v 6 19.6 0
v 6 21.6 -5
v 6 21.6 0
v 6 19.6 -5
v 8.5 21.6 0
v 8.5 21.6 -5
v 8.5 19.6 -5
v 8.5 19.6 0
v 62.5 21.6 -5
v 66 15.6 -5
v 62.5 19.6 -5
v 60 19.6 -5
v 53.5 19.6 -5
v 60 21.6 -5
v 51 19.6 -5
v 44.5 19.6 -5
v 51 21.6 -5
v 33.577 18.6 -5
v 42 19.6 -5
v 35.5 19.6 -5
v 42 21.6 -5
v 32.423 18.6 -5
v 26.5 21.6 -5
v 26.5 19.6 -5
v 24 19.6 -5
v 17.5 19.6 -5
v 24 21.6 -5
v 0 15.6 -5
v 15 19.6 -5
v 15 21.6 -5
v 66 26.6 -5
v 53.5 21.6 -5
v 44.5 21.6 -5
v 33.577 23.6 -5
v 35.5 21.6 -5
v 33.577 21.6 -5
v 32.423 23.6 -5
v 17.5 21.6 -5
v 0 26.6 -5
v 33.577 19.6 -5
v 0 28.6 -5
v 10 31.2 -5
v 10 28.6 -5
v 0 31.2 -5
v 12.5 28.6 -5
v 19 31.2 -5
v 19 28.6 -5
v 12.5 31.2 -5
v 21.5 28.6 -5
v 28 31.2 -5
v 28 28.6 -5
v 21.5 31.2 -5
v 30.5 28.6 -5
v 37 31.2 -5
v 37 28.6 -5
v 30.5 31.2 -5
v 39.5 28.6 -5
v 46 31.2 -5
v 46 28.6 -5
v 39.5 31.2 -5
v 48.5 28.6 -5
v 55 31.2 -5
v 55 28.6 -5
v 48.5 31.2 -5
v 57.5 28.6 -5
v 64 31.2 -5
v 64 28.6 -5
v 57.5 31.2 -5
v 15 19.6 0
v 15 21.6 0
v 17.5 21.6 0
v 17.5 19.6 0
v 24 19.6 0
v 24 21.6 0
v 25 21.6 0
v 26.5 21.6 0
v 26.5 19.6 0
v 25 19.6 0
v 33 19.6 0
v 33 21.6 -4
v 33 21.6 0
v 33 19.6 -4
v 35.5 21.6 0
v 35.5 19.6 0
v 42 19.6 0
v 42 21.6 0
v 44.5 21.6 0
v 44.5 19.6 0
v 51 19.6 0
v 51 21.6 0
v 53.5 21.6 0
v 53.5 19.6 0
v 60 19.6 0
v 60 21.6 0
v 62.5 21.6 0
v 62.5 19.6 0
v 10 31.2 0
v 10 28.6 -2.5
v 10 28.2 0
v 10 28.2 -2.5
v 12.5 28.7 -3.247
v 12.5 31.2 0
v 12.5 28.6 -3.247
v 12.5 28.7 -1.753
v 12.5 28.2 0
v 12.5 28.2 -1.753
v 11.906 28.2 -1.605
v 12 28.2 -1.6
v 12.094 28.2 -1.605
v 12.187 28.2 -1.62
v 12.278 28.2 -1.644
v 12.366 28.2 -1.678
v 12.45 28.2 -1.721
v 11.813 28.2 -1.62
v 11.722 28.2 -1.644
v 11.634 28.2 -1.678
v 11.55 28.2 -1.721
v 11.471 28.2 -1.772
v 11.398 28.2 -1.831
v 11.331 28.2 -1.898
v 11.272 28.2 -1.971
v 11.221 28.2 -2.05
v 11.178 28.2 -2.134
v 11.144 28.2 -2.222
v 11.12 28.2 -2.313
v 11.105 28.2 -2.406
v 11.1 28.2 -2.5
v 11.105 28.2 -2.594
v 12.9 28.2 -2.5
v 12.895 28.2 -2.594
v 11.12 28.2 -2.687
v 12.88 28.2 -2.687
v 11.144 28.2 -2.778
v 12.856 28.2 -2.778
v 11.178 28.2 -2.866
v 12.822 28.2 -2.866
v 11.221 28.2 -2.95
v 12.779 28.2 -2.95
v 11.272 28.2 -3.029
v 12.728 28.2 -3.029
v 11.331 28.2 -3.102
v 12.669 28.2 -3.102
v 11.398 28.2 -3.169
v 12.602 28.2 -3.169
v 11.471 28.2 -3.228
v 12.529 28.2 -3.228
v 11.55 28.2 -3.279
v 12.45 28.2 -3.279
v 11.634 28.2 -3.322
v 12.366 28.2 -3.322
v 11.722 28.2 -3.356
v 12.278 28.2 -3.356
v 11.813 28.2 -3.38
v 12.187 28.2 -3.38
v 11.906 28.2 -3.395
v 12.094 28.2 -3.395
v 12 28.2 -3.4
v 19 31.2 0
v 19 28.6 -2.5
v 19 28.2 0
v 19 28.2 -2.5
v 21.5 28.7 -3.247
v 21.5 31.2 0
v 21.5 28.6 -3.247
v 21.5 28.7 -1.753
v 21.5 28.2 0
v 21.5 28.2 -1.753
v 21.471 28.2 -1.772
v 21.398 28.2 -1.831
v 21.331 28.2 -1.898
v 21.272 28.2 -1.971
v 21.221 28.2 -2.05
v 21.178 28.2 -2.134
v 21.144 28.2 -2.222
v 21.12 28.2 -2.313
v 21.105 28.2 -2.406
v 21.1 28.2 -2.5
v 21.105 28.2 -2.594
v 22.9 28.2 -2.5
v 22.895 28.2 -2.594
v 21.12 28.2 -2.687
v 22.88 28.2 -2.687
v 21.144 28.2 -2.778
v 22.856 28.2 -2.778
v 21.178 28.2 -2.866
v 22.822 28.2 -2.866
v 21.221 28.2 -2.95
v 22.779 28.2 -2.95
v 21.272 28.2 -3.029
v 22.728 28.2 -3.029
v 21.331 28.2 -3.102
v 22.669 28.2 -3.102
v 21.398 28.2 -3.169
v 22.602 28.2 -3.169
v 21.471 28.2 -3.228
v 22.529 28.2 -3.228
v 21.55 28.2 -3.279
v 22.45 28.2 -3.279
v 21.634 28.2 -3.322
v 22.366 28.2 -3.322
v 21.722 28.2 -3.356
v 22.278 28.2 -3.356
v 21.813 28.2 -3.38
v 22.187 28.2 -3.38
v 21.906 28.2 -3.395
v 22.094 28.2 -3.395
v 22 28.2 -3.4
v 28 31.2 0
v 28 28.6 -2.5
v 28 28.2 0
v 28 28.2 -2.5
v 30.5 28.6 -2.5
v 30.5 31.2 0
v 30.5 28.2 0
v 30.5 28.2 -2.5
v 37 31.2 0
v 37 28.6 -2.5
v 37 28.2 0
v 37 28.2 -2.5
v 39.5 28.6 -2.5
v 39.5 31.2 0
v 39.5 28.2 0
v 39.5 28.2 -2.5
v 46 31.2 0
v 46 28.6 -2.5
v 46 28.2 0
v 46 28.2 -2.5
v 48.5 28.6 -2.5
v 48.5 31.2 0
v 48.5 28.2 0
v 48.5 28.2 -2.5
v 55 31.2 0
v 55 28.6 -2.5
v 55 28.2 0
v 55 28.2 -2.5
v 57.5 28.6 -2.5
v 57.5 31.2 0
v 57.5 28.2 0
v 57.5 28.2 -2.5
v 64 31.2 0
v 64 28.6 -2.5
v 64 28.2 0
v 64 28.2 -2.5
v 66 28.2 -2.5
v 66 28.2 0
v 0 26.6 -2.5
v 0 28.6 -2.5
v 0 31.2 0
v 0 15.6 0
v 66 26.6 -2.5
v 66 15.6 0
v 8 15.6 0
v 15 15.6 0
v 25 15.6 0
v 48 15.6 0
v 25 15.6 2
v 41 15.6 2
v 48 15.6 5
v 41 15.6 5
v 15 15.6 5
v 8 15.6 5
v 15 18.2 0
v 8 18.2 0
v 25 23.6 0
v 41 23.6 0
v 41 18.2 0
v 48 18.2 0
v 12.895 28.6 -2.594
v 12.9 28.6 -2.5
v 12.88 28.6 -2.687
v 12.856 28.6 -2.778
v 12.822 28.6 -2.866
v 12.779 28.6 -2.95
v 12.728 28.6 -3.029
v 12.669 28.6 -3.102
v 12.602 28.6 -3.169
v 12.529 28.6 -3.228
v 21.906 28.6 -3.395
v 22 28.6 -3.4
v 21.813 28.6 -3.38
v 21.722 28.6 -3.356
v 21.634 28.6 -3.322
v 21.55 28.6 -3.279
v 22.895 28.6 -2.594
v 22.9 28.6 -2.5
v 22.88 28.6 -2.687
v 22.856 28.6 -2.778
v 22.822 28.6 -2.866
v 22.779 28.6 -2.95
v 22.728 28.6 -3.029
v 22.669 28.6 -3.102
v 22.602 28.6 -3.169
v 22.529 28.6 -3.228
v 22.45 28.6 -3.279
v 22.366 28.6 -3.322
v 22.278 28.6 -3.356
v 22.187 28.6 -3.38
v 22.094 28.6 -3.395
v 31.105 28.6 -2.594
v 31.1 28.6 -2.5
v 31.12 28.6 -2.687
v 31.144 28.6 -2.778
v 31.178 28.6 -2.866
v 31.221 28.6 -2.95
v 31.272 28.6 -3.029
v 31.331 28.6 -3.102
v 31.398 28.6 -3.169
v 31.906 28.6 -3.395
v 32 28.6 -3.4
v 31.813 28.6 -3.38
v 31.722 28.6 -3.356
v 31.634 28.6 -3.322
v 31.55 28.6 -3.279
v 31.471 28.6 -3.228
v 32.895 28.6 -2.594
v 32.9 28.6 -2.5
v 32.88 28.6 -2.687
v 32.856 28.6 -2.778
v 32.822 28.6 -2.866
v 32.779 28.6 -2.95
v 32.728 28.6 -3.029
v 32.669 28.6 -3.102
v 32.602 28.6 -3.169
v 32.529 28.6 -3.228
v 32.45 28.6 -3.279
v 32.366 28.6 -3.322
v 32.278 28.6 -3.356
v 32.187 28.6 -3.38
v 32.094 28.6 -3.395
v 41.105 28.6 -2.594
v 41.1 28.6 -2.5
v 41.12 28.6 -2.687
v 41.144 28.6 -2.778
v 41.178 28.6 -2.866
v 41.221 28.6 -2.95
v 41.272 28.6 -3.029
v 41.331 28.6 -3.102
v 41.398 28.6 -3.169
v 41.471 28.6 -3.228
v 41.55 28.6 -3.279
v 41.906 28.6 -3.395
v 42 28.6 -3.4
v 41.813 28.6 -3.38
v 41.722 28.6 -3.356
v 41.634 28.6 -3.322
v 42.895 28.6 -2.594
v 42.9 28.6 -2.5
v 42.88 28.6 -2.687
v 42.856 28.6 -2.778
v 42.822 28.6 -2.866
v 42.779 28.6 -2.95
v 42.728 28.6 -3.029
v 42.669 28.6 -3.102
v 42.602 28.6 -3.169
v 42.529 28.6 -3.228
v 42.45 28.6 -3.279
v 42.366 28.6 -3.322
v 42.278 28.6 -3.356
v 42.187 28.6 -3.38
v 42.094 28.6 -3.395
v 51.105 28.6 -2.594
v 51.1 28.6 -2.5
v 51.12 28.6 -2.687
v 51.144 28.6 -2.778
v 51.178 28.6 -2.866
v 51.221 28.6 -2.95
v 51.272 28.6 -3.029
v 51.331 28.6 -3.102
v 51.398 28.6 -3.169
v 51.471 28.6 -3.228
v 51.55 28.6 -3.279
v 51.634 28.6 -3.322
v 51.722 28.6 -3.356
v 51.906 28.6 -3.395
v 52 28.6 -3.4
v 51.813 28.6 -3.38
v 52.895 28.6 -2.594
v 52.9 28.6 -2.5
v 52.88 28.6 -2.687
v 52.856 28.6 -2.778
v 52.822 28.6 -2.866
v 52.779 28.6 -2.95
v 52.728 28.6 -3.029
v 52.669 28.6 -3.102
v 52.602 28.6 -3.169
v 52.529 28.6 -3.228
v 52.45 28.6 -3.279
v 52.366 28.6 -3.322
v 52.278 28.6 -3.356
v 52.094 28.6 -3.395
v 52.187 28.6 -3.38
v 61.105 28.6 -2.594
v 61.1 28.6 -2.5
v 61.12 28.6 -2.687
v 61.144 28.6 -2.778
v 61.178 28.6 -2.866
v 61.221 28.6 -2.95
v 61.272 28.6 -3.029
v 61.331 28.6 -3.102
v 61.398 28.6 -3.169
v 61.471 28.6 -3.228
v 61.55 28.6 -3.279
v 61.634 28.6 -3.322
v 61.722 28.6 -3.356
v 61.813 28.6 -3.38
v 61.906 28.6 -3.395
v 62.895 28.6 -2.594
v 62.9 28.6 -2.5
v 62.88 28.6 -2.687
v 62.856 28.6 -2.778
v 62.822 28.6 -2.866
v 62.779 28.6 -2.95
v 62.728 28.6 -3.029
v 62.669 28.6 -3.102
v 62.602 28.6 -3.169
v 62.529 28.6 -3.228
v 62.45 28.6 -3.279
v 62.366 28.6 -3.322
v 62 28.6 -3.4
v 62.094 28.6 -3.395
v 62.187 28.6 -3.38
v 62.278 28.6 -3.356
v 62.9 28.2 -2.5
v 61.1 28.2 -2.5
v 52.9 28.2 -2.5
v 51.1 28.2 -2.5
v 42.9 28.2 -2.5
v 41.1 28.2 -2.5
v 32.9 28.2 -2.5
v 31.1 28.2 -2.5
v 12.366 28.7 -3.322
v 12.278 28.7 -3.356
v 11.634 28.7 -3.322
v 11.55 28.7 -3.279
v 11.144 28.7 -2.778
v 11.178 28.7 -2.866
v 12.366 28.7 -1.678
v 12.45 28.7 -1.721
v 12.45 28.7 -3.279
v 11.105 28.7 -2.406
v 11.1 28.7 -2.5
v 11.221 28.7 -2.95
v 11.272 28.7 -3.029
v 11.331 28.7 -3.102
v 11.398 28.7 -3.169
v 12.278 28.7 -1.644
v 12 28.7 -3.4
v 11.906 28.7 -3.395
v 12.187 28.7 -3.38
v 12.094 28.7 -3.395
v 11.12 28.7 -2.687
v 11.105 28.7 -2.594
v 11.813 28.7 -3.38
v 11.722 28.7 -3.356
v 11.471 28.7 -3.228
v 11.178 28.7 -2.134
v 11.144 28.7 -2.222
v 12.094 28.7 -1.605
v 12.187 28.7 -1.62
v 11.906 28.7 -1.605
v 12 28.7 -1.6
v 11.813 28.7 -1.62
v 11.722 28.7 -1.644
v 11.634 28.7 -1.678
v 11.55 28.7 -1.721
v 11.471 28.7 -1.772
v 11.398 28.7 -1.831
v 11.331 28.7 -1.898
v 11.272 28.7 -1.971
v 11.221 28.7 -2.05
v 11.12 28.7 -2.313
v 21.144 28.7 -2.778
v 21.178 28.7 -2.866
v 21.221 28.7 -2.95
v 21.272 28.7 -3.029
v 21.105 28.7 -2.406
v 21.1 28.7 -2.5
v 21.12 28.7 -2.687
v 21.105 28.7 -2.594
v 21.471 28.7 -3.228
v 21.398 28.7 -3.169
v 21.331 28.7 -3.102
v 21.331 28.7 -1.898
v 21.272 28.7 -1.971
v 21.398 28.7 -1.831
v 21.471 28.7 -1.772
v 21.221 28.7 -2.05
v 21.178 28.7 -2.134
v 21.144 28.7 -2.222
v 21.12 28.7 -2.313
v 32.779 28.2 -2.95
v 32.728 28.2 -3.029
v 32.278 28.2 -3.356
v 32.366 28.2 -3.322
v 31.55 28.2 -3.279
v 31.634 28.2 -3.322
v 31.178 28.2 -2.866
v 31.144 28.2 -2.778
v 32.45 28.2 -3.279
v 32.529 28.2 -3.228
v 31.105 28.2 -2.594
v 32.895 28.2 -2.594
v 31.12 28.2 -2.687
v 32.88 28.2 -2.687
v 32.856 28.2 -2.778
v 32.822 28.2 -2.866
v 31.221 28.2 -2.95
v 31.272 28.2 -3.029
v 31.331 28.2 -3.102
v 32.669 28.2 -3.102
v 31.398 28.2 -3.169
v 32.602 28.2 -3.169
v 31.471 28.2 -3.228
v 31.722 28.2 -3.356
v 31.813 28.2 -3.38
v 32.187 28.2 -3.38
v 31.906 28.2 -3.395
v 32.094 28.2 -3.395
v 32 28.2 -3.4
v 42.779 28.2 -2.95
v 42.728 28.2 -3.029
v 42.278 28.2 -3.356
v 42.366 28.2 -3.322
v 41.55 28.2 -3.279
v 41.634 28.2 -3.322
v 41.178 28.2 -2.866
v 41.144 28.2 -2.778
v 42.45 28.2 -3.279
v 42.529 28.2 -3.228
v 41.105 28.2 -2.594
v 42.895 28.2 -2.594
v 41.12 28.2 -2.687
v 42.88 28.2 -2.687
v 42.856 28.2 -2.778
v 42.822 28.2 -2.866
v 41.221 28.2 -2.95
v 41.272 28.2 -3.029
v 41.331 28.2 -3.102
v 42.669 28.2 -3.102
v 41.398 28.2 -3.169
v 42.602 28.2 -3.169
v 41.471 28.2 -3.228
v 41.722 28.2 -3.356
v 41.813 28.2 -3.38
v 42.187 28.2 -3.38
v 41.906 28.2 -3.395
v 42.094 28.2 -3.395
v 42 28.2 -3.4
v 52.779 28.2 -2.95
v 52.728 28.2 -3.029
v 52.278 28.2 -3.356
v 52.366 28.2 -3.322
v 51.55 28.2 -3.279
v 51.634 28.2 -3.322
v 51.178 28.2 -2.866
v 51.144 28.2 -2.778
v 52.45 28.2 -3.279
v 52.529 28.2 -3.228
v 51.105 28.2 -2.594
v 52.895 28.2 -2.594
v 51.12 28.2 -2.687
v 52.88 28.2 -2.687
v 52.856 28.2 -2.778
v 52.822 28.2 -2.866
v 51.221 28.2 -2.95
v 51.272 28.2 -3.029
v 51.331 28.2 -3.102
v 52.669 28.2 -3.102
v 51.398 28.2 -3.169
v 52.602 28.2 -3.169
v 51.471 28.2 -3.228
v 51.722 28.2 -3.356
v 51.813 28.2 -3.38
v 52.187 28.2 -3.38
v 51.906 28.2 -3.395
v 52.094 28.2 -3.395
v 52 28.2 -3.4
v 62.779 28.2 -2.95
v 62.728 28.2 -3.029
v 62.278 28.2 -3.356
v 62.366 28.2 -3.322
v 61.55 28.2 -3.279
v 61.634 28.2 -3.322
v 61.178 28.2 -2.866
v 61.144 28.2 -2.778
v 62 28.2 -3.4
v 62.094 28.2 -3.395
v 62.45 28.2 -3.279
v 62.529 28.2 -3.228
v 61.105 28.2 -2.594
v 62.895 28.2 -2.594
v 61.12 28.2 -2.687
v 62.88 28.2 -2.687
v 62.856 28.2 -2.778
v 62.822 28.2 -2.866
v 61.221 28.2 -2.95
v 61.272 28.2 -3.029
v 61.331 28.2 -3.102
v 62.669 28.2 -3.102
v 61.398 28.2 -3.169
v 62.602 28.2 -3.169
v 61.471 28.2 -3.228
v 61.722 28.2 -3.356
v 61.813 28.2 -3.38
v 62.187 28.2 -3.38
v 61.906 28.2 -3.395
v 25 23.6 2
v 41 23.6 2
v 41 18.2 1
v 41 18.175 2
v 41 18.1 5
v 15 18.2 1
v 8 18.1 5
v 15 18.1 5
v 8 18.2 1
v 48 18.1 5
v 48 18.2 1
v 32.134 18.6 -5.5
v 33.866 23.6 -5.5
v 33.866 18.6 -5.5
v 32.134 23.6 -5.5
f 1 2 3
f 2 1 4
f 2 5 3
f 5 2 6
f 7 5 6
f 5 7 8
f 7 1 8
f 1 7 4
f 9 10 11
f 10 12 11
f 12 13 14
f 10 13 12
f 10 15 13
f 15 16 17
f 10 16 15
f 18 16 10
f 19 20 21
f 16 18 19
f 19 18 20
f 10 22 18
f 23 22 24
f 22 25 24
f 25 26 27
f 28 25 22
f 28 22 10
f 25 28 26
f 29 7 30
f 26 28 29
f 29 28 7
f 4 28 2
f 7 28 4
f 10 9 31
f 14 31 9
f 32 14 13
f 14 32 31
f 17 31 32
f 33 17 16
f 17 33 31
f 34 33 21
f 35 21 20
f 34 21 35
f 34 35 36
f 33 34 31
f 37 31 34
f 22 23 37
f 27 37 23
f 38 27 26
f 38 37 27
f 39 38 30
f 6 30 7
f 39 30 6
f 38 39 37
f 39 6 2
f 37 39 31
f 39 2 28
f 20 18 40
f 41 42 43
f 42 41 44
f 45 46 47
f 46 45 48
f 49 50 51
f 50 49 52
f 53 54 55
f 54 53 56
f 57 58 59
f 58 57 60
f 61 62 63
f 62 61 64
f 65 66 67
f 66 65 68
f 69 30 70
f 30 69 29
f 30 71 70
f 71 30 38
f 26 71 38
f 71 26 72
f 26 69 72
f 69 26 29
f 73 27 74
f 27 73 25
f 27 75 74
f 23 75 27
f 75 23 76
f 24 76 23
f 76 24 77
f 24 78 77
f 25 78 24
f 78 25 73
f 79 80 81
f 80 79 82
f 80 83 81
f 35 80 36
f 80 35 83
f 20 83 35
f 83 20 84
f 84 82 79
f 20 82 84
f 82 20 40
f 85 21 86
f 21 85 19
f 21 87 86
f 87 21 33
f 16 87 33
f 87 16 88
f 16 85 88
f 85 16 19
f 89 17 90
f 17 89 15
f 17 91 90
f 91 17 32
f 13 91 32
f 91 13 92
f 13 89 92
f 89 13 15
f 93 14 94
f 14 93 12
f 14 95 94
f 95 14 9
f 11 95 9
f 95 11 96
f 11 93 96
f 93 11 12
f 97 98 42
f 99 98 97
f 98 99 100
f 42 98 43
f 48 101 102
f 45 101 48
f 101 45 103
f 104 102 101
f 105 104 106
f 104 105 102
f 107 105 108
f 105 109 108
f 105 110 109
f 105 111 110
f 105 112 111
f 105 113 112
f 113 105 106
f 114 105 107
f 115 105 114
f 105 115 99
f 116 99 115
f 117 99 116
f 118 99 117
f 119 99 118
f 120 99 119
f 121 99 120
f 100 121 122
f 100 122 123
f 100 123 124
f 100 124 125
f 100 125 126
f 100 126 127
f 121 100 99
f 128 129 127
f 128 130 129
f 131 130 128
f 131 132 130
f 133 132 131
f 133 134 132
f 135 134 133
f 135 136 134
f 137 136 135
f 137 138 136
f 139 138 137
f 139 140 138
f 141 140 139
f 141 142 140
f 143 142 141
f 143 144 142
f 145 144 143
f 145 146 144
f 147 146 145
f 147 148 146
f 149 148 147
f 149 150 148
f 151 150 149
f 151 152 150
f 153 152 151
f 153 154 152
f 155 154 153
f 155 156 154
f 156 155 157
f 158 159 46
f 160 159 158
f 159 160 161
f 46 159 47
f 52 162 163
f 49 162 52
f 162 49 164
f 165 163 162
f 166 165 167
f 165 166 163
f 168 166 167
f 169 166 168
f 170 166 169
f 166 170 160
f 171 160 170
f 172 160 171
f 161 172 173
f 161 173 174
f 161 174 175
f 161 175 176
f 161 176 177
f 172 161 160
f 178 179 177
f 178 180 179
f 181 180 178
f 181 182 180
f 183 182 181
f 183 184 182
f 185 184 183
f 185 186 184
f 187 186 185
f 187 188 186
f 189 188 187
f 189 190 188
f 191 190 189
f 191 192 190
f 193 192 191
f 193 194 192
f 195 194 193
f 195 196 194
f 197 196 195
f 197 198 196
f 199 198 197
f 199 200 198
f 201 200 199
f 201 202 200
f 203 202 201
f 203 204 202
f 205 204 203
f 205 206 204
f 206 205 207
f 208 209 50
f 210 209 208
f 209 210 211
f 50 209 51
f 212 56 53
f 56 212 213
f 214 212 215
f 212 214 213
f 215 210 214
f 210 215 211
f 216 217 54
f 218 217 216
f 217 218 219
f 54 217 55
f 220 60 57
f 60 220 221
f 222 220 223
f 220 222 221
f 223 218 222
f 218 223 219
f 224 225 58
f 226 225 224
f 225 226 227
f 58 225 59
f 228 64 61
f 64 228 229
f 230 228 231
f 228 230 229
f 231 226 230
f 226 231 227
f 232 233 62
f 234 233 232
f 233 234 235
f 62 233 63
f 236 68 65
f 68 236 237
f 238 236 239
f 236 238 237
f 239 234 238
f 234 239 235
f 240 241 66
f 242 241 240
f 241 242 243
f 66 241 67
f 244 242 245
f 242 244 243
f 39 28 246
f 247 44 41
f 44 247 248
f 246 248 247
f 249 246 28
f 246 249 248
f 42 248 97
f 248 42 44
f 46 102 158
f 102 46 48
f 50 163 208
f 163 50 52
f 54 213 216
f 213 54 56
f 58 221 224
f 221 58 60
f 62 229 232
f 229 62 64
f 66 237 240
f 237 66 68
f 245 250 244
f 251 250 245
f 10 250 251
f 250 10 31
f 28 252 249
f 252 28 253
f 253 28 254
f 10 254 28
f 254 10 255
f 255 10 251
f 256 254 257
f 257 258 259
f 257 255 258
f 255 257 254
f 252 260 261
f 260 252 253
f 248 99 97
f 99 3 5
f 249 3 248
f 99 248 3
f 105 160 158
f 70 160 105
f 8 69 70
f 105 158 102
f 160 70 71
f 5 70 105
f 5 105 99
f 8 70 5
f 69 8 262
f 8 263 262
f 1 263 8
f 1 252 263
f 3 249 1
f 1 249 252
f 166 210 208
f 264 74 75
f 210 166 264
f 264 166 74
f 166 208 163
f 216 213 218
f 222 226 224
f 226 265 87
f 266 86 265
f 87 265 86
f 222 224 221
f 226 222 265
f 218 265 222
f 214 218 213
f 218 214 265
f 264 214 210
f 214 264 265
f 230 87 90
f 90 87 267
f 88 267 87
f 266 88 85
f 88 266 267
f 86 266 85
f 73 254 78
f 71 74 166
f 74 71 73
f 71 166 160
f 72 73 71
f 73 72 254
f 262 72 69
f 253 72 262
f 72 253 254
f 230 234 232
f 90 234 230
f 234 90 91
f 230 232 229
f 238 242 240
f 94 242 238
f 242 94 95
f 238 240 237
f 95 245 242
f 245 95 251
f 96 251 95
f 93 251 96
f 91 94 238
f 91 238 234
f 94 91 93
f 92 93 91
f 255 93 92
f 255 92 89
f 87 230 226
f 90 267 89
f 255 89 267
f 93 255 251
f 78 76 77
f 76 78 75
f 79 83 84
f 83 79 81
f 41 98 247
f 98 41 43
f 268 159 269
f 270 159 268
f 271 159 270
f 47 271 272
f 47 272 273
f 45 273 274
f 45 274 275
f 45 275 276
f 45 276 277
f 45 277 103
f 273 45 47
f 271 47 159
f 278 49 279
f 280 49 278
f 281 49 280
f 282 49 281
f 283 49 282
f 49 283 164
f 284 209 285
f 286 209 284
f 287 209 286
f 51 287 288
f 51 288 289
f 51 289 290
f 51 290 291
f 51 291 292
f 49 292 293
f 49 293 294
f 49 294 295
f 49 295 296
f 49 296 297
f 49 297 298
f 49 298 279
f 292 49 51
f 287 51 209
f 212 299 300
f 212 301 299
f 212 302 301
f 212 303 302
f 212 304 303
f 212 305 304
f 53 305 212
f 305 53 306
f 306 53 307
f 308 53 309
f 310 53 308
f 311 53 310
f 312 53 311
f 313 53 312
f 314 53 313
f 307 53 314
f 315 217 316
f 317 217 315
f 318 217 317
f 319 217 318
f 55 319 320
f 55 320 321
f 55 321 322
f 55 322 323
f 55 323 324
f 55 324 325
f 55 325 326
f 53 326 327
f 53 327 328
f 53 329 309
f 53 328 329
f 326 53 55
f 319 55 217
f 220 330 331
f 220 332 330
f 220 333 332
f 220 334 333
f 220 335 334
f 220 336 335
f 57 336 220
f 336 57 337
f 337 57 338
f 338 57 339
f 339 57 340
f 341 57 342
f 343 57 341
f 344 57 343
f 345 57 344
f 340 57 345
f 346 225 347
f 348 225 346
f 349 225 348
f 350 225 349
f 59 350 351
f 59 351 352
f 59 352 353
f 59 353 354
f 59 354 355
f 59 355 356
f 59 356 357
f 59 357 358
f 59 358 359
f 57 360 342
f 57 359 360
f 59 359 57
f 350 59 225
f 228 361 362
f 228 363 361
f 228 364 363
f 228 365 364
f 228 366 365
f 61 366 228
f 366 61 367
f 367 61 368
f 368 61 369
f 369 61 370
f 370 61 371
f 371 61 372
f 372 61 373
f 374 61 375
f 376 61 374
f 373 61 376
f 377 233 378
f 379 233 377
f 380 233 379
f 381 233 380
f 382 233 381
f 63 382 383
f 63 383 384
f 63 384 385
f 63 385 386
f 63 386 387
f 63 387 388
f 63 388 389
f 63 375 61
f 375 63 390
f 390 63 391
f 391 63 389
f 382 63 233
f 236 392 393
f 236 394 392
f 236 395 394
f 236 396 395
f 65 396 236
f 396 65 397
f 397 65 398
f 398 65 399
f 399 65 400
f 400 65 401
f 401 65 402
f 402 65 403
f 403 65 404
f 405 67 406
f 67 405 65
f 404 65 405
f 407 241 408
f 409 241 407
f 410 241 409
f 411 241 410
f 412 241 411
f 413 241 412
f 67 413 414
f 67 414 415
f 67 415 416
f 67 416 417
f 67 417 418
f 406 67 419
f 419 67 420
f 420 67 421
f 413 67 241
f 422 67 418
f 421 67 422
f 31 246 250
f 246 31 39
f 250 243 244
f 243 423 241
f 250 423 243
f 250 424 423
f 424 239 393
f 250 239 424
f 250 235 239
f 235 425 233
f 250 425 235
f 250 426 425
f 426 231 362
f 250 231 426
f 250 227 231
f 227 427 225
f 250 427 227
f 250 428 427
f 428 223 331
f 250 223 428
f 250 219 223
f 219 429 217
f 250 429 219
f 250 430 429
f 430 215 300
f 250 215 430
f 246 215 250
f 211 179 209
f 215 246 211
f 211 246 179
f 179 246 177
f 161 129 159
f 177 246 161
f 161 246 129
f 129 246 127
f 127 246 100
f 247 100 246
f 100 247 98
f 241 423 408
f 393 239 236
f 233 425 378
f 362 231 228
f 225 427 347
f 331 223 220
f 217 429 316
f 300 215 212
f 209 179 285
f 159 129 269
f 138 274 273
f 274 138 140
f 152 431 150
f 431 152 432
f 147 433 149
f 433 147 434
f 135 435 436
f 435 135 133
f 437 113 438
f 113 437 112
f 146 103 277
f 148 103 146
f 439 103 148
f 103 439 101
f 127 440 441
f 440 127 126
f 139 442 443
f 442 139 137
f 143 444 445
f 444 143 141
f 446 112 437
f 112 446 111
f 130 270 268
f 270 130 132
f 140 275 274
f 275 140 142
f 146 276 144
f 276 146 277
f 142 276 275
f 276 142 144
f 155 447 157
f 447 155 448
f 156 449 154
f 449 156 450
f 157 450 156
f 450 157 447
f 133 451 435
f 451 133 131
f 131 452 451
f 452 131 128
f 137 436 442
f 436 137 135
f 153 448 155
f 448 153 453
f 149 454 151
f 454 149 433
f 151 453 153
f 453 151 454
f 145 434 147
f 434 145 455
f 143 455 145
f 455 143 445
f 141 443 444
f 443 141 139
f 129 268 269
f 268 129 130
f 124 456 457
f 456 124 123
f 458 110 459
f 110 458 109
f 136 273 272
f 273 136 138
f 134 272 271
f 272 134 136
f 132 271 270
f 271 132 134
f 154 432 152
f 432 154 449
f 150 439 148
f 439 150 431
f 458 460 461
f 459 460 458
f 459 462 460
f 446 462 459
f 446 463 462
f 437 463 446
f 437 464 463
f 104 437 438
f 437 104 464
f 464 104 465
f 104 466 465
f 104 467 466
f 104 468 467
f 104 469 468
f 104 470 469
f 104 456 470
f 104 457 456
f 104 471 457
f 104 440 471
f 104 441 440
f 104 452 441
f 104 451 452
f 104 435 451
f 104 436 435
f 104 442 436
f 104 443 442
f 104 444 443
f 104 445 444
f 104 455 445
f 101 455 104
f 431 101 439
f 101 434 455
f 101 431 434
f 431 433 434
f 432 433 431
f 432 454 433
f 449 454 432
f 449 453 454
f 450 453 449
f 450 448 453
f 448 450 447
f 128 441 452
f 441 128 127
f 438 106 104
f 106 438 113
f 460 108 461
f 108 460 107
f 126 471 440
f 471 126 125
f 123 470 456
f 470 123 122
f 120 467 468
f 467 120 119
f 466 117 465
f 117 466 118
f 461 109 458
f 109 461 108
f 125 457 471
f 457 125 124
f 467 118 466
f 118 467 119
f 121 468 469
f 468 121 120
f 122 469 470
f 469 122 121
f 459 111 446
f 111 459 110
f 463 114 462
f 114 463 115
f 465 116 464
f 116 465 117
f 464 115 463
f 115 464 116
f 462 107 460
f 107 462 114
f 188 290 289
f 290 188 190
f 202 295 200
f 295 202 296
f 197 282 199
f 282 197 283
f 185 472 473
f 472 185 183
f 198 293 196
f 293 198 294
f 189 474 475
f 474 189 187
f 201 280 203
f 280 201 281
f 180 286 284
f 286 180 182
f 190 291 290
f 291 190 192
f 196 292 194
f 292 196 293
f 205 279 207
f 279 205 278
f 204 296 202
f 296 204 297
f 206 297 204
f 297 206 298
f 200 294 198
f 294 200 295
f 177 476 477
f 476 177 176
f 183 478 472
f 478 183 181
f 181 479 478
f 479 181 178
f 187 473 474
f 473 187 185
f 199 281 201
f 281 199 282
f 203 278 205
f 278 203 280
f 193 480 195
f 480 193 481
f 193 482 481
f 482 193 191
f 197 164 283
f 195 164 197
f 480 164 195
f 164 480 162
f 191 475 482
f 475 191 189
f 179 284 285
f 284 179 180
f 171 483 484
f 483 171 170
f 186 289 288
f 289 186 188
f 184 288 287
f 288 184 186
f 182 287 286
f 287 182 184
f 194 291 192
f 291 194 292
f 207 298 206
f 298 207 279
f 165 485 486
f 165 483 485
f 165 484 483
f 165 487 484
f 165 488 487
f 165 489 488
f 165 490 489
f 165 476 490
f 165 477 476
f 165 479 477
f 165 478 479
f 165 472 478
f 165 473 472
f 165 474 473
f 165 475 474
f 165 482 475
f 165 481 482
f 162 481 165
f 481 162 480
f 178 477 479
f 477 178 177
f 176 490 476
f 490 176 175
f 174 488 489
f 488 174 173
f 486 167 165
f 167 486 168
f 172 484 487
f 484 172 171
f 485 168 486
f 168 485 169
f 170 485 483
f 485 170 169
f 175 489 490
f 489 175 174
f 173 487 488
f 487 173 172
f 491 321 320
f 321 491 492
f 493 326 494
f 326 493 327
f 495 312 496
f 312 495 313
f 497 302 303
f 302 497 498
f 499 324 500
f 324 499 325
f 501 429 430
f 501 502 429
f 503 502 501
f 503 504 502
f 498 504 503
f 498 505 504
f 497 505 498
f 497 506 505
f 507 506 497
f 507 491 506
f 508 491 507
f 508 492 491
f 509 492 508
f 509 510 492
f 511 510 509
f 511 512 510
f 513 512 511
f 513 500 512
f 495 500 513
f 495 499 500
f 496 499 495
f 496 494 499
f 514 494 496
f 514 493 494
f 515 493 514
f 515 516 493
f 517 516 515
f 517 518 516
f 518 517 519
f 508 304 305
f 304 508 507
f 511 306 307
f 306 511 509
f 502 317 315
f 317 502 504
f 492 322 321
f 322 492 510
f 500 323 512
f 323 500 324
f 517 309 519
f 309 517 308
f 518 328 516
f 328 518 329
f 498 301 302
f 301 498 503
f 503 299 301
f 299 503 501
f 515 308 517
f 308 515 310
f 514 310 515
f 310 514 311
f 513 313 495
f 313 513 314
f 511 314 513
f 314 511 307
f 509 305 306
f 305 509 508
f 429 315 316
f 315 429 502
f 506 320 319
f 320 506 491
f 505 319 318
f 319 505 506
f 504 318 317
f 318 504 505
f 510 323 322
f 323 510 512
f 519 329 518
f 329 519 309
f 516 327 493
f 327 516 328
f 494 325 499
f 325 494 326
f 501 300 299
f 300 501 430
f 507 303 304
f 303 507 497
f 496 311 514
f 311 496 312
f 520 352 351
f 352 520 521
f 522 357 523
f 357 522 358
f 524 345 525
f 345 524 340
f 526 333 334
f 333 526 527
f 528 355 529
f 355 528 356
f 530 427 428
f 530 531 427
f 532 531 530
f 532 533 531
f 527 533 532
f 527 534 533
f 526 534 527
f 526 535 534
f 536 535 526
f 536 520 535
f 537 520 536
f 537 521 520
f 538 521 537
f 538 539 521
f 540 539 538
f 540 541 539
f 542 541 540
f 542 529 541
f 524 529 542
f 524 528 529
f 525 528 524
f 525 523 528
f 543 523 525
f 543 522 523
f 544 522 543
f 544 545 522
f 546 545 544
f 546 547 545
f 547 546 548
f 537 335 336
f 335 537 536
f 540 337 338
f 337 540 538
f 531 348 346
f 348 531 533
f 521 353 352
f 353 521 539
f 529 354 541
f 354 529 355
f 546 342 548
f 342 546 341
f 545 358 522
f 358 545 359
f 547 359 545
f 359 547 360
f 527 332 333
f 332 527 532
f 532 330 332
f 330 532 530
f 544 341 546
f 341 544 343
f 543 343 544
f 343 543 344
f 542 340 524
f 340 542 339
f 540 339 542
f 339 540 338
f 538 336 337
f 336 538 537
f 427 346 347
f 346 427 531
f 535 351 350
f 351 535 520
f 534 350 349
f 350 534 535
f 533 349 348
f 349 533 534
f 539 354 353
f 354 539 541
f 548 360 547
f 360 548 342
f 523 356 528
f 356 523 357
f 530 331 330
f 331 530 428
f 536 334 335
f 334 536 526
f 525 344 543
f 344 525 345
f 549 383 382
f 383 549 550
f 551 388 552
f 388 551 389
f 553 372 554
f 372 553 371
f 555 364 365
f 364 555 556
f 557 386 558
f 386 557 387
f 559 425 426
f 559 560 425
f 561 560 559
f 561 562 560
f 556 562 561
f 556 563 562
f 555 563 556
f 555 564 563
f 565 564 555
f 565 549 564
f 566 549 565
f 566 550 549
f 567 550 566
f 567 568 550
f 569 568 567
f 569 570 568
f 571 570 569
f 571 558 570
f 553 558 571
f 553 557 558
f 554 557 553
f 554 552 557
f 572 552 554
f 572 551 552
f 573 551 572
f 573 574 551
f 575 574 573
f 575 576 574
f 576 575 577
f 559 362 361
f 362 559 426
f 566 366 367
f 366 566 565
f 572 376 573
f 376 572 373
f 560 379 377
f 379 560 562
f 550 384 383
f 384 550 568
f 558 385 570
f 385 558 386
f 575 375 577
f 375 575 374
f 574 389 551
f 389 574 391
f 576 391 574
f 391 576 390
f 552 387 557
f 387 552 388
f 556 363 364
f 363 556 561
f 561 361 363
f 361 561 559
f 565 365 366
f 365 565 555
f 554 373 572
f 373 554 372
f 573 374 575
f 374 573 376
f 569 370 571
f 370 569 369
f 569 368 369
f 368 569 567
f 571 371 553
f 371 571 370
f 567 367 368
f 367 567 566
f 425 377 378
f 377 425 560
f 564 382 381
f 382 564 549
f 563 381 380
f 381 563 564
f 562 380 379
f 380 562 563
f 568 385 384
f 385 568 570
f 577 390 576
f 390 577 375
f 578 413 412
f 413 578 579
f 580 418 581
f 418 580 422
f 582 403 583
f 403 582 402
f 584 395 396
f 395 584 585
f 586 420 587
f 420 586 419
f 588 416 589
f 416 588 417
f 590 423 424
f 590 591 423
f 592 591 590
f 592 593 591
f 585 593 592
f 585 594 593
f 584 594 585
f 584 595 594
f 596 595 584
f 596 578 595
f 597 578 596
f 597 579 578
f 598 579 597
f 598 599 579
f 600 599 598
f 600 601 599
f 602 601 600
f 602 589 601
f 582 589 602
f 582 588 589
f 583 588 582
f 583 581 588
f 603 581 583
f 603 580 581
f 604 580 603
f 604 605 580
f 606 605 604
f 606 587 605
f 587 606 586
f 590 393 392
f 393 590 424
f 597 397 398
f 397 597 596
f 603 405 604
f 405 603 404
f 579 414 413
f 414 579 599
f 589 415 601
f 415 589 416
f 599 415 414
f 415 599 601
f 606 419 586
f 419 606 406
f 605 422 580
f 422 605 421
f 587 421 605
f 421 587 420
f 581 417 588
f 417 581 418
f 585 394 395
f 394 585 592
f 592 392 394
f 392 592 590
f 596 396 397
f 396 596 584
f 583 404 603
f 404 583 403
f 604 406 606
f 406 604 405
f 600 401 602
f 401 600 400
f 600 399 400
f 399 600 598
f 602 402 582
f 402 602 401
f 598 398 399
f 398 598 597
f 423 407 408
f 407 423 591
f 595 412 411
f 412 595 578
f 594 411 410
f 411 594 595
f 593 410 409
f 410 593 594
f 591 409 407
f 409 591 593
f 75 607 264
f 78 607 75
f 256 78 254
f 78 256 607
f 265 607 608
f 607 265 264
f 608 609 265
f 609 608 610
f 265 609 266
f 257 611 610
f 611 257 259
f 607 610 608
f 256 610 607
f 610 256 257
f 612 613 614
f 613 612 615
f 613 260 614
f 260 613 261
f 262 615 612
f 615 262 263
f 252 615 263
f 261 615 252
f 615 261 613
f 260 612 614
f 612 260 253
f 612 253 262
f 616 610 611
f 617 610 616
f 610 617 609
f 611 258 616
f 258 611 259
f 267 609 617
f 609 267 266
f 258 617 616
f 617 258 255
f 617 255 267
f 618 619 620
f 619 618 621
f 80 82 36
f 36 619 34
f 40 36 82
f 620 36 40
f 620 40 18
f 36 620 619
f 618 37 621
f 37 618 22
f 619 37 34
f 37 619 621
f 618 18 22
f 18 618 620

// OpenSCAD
/*
 * FluxGuard Enclosure - CLIP (Adjustable PCB Clamp)
 * Print: Lying flat on side (pre-rotated 90°)
 * Supports: None needed
 * CRITICAL: Layer lines parallel to flex arms = long life!
 */

// --- Parameters ---
pcb_l = 52.0; pcb_w = 28.0; pcb_thick = 1.6; 
pcb_z = 10.0; 
box_l = 88.0;
$fn = 60;

module adjustable_clip() {
    rail_len = box_l - 22;
    union() {
        difference() {
            cube([rail_len, 5, pcb_z + 4 + pcb_thick]);
            translate([-1, 2.5, pcb_z + 1])
                cube([rail_len + 5, 3, pcb_thick + 0.4]);
             for(i=[0:7]) translate([6+i*9, -1, 4]) cube([2.5, 6, 2]); 
             for(i=[0:7]) translate([10+i*9, -1, pcb_z + pcb_thick + 1]) cube([2.5, 6, 4]); 
        }
        
        // Handle for finger grip
        translate([rail_len/2 - 8, -2, 0]) cube([16, 2, 8]);
        
        // Locking feet with chamfer
        hull() {
             translate([8, -5, 0]) cube([7, 7, 2.5]);
             translate([8, -1, 2.5]) cube([7, 1, 0.1]); 
        }
        hull() {
             translate([rail_len - 25, -5, 0]) cube([7, 7, 2.5]);
             translate([rail_len - 25, -1, 2.5]) cube([7, 1, 0.1]); 
        }
        
        // Ratchet tooth
        translate([rail_len/2, 5, 3]) rotate([0,0,-90]) cylinder(r=1, h=5, $fn=3);
            
        // Thermal standoffs
        for(i=[0:5]) translate([12+i*10, 2.5, pcb_z + 1 + pcb_thick]) cylinder(d=1.8, h=0.5);
    }
}

// === PRINT-READY: Rotated 90° to lie flat ===
clip_height = pcb_z + 4 + pcb_thick;
translate([0, clip_height, 0]) rotate([-90, 0, 0]) adjustable_clip();
